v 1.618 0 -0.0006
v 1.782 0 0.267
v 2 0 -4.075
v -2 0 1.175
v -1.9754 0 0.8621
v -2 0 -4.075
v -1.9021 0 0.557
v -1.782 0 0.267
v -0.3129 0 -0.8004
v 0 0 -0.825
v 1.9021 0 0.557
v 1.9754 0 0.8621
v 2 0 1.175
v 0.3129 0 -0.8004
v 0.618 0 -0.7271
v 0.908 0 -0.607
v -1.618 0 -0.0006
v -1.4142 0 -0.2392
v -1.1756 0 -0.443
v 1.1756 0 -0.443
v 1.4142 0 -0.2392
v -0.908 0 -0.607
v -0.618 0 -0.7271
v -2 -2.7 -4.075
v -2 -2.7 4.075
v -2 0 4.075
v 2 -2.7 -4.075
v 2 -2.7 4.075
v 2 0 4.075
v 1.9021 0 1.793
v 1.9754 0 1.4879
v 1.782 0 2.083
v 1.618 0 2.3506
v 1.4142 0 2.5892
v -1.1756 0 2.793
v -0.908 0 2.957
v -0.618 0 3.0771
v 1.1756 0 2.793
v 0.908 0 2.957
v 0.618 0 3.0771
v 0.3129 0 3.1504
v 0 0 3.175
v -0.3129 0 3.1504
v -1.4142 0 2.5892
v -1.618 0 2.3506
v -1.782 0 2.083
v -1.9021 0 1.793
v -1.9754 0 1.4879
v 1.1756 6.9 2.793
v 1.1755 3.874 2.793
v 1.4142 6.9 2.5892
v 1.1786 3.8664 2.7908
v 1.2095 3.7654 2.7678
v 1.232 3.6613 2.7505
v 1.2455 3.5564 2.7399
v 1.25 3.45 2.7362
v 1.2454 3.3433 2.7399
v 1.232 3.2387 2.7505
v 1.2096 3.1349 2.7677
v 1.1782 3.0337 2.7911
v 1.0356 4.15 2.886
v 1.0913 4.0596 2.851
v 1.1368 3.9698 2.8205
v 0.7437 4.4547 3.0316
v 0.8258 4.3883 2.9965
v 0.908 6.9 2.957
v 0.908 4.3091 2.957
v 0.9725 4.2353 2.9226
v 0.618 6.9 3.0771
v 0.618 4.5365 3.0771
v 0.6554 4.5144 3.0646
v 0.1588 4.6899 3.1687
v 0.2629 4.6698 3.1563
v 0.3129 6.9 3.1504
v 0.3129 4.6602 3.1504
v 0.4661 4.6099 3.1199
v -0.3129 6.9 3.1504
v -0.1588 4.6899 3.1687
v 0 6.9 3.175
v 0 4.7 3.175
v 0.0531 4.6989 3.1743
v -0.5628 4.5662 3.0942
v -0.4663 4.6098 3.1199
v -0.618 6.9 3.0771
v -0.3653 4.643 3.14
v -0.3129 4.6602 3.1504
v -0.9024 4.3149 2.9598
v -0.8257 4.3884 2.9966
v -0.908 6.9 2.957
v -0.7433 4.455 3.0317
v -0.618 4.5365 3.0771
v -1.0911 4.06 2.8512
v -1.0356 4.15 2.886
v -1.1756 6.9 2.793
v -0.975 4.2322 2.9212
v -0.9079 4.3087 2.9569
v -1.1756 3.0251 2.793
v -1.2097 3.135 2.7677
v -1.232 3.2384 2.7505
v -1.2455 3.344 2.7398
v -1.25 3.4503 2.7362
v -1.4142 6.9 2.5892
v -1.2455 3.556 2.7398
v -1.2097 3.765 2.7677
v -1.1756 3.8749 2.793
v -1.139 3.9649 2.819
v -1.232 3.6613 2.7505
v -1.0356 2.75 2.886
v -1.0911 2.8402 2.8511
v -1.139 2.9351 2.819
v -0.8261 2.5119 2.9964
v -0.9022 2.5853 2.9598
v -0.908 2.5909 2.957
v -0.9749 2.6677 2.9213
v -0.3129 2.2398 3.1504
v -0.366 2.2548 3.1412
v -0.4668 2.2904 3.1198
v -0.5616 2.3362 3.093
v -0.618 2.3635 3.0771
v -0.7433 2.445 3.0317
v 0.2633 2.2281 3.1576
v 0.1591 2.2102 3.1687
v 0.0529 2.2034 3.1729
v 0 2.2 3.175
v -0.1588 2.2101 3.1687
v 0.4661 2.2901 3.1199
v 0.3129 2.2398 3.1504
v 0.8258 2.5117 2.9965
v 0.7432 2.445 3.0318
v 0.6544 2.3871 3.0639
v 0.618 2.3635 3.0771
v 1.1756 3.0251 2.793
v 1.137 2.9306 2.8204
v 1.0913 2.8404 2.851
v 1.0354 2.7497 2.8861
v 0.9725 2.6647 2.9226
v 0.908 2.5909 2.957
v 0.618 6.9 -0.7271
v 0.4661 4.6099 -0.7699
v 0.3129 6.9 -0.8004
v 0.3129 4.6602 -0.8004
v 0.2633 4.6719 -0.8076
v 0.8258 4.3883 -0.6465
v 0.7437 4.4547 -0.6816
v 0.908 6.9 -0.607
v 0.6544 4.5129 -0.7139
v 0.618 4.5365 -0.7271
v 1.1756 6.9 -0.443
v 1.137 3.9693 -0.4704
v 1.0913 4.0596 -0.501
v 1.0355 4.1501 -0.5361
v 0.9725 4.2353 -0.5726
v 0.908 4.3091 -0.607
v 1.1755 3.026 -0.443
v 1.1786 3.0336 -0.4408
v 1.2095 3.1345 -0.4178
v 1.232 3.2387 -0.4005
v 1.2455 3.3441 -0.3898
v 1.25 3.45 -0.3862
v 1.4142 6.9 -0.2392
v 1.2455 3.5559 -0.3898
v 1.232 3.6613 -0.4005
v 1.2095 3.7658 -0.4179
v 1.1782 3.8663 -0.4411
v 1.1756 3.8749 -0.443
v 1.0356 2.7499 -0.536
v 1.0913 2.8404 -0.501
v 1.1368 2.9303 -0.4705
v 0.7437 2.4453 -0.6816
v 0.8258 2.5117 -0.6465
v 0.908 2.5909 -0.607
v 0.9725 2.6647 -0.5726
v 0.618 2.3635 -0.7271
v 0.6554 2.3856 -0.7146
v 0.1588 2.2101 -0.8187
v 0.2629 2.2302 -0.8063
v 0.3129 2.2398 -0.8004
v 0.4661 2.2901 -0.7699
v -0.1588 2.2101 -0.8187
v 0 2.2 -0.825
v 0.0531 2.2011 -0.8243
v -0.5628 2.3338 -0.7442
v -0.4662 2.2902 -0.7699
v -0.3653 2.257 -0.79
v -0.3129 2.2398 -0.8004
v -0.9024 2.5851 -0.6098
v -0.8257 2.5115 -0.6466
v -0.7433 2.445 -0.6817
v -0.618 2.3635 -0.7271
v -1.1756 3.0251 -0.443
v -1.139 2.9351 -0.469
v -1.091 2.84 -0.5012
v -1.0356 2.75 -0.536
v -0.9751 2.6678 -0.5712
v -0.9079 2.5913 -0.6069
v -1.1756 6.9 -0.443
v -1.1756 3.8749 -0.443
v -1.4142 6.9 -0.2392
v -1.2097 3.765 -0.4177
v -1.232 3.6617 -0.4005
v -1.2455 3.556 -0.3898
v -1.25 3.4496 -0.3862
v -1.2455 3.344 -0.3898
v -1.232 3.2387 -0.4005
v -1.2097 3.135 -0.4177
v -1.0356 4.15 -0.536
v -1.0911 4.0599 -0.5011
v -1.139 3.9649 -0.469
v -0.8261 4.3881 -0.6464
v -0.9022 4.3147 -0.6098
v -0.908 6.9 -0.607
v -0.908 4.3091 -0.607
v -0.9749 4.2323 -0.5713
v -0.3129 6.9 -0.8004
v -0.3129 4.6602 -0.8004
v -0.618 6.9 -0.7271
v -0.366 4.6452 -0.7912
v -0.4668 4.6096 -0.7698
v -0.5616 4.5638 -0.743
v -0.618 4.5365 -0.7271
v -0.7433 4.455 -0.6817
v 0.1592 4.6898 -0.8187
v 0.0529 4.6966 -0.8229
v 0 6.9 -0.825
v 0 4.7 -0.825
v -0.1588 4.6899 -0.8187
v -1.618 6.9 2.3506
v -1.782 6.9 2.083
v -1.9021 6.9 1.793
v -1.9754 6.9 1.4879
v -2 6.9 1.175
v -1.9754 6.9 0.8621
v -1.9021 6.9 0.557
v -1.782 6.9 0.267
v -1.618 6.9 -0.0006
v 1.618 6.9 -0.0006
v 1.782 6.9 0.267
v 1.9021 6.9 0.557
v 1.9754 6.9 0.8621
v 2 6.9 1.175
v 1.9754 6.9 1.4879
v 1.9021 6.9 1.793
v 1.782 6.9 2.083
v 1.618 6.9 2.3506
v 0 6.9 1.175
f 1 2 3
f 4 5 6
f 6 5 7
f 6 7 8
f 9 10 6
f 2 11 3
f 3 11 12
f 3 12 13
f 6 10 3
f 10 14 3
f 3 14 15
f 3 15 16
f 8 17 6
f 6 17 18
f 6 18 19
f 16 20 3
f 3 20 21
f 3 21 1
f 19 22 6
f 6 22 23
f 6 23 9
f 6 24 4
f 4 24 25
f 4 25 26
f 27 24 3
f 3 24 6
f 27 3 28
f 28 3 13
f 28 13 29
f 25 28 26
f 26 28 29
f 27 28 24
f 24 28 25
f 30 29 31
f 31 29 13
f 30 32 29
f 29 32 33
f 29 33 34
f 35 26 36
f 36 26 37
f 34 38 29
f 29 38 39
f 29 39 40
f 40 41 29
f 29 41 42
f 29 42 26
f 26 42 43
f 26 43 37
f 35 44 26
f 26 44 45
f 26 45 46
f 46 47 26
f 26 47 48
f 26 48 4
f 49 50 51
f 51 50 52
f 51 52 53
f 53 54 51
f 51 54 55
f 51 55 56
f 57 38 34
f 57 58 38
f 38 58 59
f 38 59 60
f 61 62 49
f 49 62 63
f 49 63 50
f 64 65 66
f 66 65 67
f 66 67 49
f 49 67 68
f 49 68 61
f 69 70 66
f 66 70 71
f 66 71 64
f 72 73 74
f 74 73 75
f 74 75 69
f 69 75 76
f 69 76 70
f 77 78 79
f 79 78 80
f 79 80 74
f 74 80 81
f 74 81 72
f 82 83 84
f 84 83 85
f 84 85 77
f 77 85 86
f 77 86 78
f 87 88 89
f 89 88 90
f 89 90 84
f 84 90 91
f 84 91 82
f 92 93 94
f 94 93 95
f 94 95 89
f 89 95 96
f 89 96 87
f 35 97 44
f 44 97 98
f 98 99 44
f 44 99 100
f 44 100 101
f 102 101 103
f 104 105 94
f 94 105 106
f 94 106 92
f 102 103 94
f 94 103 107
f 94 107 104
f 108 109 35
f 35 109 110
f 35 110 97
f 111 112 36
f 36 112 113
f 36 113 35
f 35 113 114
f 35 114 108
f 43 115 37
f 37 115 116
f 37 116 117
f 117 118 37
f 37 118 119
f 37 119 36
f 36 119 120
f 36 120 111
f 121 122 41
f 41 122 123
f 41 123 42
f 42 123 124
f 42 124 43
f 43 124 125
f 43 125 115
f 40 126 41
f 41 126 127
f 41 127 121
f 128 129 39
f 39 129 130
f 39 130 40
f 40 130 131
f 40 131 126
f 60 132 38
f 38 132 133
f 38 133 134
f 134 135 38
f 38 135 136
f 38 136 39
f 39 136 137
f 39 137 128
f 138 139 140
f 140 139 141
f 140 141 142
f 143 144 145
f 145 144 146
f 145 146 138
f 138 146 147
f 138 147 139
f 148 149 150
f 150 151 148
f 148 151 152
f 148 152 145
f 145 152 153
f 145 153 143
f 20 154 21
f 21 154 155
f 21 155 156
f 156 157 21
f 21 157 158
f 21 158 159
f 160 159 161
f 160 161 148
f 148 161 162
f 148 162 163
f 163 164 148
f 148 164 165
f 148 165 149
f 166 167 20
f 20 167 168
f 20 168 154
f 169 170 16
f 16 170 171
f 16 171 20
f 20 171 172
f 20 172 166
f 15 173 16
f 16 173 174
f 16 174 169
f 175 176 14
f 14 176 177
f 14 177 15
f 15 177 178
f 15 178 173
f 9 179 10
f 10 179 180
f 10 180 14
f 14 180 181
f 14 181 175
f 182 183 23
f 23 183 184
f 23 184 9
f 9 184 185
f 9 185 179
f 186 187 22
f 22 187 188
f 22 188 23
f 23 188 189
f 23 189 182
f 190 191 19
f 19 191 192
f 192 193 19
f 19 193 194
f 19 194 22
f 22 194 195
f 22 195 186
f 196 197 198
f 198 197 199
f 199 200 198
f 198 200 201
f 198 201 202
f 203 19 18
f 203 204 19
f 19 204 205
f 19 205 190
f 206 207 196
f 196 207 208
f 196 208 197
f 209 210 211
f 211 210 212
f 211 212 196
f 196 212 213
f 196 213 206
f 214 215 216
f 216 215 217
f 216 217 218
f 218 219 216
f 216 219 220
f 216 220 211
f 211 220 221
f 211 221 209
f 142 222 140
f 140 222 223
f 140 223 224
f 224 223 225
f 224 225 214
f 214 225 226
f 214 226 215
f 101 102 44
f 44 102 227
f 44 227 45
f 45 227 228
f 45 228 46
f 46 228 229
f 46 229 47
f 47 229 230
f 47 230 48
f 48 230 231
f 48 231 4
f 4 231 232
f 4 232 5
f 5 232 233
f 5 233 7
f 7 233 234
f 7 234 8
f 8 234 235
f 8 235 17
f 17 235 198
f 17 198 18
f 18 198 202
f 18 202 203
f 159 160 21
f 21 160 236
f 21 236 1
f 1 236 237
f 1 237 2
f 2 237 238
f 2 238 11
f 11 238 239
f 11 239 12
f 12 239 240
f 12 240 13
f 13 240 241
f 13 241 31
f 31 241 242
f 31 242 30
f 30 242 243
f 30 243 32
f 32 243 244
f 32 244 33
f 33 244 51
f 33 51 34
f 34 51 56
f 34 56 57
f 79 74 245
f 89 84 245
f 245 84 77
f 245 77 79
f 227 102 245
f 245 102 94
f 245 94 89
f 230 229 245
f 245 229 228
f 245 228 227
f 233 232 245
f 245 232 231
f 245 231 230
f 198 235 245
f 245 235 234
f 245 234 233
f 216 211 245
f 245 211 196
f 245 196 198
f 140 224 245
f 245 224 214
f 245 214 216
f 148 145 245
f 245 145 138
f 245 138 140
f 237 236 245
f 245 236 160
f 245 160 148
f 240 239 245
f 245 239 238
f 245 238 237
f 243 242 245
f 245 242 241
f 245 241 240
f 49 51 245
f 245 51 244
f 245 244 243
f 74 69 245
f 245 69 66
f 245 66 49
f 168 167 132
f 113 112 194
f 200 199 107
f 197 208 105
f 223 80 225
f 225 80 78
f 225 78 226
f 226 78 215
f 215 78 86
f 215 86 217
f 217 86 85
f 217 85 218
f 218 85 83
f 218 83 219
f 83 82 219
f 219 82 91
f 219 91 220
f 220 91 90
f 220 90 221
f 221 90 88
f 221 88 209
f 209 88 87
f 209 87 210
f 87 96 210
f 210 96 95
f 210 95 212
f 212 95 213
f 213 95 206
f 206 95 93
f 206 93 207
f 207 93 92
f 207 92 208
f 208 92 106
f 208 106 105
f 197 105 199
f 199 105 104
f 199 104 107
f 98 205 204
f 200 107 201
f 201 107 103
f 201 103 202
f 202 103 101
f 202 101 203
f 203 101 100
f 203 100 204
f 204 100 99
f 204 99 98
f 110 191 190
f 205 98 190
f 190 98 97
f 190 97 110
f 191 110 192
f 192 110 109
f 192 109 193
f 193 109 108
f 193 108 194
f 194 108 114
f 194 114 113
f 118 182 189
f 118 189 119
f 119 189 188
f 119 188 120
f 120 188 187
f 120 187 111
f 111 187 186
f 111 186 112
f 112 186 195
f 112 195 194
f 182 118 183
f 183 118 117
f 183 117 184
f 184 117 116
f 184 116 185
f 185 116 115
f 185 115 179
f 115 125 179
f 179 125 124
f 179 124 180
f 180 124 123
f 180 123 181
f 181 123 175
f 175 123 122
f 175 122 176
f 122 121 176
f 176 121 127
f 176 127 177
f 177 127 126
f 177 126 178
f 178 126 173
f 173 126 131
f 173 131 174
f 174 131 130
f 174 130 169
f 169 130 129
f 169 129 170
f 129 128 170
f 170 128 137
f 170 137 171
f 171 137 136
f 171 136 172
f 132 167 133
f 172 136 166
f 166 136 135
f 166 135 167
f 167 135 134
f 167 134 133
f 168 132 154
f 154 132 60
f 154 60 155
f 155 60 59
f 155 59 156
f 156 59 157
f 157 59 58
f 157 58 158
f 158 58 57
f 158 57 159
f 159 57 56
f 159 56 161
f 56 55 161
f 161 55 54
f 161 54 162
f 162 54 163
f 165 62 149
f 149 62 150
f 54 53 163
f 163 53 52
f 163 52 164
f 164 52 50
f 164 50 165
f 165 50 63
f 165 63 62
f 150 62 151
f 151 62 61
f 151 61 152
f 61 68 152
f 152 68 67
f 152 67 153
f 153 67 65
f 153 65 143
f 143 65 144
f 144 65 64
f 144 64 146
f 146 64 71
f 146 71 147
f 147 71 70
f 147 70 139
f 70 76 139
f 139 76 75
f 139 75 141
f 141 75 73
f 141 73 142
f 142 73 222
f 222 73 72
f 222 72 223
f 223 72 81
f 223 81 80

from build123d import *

# Parameters (mm, degrees)
SKETCH2_W         = 4
SKETCH2_H         = 8.15
BOTTOM_DEPTH      = 2.7
SKETCH3_R         = 2
TOP_DEPTH         = 6.9
SKETCH4_R         = 1.25
TENDON_HOLE_DEPTH = 13.5


with BuildPart() as part:
    # Sketch2 → bottom (new body)
    with BuildSketch(Plane(origin=(0, 0, 0), x_dir=(1, 0, 0), z_dir=(0, 1, 0))):
        Rectangle(SKETCH2_W, SKETCH2_H)
    extrude(amount=-BOTTOM_DEPTH)

    # Sketch3 → top (add)
    with BuildSketch(Plane(origin=(0, 0, 0), x_dir=(1, 0, 0), z_dir=(0, 1, 0))):
        with Locations((0, -1.175)):
            Circle(SKETCH3_R)
    extrude(amount=TOP_DEPTH)

    # Sketch4 → tendon hole (cut)
    with BuildSketch(Plane.XY.offset(4.075)):
        with Locations((0, 3.45)):
            Circle(SKETCH4_R)
    extrude(amount=-TENDON_HOLE_DEPTH, mode=Mode.SUBTRACT)


solid = part.part
